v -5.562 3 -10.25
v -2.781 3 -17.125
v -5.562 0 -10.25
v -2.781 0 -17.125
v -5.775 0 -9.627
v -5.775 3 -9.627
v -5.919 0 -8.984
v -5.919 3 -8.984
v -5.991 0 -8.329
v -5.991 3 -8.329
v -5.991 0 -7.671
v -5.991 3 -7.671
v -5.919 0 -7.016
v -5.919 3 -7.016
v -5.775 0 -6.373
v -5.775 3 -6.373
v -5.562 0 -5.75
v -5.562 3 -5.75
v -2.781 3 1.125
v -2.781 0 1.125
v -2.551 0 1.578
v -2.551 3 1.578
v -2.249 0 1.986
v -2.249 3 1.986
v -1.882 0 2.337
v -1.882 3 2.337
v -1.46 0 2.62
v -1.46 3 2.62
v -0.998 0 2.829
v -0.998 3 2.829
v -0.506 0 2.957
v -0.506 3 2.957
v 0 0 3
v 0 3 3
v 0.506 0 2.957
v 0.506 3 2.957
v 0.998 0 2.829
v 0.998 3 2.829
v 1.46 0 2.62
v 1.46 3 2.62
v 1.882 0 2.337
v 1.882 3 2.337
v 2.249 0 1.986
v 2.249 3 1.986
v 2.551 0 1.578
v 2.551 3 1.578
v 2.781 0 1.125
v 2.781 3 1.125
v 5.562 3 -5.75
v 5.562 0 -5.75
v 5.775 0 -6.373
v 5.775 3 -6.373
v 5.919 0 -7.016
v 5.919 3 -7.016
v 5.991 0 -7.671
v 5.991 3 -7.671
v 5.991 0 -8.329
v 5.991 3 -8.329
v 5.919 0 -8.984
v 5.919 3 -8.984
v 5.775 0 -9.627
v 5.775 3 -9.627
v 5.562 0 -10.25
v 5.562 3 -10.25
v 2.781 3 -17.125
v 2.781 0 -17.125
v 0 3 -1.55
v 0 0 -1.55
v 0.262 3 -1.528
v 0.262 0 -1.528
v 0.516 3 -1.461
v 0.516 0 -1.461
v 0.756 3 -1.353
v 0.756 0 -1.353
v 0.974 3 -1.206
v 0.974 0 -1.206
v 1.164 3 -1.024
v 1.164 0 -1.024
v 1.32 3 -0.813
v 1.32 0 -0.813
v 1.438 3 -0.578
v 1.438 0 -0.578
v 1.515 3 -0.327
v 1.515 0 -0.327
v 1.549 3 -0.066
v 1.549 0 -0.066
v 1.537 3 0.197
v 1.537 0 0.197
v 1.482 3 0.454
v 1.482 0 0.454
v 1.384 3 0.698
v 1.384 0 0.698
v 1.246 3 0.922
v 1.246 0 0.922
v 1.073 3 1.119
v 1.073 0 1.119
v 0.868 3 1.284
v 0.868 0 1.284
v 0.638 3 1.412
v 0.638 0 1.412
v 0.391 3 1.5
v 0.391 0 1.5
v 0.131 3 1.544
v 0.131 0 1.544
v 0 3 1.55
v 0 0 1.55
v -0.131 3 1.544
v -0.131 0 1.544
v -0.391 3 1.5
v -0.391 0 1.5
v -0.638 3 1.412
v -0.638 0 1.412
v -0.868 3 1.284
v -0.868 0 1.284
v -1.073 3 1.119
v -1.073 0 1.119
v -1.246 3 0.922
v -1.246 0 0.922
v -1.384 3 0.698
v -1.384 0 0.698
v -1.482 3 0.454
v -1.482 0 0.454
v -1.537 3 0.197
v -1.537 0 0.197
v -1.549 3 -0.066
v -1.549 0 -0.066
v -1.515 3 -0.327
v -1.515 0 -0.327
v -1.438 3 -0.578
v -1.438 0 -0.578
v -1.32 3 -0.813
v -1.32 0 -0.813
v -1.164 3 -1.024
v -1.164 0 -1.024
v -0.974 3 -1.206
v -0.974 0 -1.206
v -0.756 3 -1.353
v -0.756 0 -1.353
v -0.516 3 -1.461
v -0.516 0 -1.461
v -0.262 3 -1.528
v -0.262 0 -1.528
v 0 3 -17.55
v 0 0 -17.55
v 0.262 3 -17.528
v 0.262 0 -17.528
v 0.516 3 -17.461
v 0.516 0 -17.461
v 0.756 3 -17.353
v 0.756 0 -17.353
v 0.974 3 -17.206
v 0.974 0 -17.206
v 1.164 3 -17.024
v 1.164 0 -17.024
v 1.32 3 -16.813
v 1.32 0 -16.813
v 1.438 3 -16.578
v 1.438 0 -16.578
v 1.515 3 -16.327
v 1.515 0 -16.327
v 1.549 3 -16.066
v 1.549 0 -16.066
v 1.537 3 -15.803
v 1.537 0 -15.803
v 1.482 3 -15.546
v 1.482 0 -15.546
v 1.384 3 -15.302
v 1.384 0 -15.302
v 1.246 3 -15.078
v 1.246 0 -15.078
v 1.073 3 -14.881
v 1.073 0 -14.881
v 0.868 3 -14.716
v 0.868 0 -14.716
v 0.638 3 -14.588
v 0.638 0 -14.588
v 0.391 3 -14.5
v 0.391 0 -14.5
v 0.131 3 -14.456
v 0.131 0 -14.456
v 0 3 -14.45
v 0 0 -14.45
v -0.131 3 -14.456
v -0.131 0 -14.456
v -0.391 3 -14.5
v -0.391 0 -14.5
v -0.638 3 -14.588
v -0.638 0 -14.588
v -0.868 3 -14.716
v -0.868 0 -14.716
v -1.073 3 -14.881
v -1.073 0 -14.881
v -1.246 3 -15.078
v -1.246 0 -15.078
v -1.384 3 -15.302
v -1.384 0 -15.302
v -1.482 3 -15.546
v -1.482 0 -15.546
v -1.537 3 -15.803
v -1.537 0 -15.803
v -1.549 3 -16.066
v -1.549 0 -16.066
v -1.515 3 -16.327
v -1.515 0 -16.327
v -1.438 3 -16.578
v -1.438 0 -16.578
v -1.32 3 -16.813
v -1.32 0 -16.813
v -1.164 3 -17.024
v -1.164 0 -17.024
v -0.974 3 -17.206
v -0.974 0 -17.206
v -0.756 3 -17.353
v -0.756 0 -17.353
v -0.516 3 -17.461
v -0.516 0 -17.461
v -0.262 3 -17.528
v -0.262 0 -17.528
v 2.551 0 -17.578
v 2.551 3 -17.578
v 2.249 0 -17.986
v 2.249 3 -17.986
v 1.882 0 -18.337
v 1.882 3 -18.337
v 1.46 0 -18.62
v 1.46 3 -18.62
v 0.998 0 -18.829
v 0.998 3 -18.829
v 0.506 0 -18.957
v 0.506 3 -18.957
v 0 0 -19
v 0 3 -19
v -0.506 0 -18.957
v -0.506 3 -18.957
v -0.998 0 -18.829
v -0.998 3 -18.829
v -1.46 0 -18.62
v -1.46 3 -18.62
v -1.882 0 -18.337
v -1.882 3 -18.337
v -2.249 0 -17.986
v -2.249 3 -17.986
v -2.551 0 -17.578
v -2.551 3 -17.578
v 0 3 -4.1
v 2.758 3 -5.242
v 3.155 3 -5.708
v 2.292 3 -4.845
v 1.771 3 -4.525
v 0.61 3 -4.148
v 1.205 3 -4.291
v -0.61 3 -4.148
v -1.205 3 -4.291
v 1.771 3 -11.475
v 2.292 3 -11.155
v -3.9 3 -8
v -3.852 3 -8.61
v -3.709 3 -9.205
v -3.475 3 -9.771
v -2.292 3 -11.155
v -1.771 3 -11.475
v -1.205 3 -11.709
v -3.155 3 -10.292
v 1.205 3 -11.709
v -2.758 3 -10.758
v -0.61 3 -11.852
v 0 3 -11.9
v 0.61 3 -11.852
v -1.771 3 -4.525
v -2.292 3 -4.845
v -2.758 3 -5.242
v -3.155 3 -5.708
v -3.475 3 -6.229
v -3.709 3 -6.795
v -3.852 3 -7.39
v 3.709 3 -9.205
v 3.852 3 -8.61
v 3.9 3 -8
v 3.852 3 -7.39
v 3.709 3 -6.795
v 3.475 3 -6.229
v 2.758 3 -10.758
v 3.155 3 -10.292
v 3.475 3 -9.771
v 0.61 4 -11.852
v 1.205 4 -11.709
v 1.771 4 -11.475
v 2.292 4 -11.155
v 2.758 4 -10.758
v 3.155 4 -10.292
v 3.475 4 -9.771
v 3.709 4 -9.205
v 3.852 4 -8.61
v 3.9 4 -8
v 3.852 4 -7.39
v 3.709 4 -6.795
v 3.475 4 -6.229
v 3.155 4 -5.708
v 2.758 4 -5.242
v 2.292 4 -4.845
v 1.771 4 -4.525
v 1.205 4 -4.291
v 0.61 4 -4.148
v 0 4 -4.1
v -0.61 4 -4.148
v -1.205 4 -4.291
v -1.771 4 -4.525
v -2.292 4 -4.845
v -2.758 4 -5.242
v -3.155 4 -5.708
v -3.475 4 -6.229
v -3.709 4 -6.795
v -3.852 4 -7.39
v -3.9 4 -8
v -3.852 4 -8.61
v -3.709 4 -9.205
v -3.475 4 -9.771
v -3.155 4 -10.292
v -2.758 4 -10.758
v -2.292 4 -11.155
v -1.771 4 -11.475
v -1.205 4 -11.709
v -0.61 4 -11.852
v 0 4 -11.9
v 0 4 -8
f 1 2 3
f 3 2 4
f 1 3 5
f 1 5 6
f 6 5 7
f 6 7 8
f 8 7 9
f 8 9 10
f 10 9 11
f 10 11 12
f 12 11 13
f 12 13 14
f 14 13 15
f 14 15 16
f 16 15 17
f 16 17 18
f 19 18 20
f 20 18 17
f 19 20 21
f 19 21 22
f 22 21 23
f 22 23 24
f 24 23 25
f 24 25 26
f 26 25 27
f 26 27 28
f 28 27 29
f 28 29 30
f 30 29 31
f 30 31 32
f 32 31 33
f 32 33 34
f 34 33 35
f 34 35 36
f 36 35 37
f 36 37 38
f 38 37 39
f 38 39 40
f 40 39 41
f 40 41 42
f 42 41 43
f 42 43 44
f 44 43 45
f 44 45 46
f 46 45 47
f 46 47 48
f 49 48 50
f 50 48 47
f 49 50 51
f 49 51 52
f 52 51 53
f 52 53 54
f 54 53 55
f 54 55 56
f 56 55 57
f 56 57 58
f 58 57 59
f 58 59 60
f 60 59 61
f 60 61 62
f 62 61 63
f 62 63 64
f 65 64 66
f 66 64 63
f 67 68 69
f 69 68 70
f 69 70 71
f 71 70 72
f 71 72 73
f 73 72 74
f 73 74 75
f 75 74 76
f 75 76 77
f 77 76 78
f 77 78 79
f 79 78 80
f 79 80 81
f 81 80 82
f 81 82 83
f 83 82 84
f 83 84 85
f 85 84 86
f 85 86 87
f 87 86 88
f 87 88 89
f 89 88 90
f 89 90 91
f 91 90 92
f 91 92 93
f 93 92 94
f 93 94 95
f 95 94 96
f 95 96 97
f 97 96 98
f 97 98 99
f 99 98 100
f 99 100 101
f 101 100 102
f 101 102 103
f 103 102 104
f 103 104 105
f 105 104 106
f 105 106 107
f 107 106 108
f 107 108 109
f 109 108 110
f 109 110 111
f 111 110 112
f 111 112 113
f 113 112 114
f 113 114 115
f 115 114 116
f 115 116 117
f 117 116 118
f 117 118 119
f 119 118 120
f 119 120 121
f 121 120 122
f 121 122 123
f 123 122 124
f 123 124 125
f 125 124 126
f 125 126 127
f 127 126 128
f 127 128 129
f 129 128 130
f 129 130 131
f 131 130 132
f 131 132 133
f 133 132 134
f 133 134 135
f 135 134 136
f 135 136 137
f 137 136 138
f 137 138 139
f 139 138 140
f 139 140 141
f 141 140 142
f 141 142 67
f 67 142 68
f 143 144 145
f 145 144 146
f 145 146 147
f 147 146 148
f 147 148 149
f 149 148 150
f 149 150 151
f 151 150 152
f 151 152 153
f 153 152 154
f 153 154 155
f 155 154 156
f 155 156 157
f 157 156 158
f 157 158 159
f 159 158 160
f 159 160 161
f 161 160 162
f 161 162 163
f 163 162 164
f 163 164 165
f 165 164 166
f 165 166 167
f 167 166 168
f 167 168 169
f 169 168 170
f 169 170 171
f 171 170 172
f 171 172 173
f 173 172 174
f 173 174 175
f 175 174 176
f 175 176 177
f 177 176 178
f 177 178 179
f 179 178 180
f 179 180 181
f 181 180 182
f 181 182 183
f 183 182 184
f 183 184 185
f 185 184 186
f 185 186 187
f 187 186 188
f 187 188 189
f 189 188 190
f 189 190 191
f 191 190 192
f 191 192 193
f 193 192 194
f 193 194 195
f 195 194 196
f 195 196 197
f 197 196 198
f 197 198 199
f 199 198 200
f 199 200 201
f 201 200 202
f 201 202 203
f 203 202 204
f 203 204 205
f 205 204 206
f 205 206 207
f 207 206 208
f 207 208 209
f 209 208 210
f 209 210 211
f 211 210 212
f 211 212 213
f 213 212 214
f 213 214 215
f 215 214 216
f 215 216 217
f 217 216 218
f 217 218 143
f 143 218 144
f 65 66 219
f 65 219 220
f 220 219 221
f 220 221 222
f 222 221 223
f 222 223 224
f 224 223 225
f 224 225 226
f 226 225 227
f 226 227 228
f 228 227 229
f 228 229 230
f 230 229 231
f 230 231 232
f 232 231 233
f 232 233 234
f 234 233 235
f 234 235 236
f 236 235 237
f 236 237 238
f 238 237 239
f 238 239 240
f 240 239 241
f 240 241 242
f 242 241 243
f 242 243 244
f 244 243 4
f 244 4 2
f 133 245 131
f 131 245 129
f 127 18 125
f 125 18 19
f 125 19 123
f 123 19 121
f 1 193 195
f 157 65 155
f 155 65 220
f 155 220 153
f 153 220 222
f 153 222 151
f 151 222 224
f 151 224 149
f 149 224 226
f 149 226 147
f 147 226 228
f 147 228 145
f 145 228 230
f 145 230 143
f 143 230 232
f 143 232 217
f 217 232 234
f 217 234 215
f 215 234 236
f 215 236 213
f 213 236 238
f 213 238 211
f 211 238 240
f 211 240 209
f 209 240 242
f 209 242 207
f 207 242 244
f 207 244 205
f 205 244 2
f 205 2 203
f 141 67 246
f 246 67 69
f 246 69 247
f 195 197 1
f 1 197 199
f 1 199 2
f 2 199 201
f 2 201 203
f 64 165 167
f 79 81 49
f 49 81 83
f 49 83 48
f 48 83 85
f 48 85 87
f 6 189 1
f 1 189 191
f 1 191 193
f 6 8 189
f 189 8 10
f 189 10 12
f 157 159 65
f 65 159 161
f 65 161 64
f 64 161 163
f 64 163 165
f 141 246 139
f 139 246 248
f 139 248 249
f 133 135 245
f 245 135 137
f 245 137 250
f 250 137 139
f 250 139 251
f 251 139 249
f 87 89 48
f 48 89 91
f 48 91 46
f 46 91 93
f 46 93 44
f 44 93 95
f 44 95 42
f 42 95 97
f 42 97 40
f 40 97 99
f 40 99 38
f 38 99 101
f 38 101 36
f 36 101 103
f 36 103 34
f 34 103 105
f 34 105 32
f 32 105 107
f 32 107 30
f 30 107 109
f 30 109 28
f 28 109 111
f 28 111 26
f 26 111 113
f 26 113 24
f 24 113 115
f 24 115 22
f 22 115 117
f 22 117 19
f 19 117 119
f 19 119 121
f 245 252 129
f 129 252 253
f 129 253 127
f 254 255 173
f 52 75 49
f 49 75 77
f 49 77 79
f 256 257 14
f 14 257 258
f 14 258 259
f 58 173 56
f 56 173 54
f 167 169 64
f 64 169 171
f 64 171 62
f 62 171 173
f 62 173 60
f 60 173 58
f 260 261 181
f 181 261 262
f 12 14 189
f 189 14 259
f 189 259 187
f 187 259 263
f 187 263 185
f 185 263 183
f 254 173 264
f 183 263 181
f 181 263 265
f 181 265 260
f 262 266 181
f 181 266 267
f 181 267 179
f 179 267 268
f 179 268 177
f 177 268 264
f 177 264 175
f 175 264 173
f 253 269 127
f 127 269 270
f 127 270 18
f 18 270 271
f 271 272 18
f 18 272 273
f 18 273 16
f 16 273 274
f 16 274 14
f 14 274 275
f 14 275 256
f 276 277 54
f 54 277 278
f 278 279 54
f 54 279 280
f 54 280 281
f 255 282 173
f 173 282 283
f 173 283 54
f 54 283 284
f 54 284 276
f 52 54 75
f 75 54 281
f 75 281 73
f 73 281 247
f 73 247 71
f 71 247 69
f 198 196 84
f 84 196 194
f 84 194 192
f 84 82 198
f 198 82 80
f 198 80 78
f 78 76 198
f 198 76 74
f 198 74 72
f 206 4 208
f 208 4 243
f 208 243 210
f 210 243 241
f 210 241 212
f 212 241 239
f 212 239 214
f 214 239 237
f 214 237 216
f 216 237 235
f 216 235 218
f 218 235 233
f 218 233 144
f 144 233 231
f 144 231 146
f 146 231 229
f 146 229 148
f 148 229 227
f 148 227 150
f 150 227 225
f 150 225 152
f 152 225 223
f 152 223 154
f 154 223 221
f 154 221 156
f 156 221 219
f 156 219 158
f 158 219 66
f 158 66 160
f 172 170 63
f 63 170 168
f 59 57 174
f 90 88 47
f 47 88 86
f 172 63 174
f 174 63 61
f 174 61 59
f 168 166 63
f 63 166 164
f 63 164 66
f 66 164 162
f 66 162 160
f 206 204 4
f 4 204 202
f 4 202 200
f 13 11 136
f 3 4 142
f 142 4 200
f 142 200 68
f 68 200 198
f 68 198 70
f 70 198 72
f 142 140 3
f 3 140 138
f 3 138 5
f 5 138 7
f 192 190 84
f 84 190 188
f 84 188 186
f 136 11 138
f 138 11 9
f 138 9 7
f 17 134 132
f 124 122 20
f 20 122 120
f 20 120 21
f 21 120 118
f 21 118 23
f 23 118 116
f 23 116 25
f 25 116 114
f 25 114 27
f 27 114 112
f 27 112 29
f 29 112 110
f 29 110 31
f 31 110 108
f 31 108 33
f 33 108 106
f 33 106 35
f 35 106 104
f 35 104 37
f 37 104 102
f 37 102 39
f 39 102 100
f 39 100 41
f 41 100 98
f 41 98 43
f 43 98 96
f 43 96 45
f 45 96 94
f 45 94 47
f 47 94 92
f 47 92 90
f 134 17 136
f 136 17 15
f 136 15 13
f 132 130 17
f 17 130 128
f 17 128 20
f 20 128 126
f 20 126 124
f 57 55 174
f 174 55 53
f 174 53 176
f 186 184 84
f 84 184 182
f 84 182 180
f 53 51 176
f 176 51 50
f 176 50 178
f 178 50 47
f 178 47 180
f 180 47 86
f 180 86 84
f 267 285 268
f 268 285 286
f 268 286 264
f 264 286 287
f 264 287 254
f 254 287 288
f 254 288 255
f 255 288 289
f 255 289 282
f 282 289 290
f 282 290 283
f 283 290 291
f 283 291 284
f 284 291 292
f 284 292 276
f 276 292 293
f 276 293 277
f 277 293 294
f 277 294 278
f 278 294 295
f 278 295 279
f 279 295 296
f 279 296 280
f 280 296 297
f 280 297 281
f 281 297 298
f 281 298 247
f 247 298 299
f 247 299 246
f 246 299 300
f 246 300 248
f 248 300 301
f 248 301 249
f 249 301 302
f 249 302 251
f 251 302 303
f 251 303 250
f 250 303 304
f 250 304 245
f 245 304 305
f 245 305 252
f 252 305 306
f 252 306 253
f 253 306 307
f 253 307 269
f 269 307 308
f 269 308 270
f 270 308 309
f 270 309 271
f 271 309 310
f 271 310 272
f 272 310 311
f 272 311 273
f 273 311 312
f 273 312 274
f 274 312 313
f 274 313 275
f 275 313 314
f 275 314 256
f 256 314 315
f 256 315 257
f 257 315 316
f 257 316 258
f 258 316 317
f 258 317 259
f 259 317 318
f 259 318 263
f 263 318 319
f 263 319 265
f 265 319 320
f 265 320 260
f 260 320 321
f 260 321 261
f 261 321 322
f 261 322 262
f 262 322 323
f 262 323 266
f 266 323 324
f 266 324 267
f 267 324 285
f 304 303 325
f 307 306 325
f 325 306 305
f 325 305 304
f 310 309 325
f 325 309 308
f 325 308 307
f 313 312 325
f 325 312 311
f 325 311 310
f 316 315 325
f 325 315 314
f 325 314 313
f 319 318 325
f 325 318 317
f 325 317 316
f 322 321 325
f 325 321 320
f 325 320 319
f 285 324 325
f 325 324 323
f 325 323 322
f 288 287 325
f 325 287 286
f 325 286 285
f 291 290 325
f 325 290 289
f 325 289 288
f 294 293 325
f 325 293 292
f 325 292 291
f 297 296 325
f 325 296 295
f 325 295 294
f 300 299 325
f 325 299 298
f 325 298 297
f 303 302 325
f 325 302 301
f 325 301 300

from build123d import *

# Parameters (mm, degrees)
CROQUIS2_R              = 1.55
SALIENTE_EXTRUIR1_DEPTH = 3
CROQUIS3_R              = 3.9
SALIENTE_EXTRUIR2_DEPTH = 1


with BuildPart() as part:
    # Croquis2 → Saliente-Extruir1 (new body)
    with BuildSketch(Plane(origin=(0, 0, 0), x_dir=(1, 0, 0), z_dir=(0, 1, 0))):
        with BuildLine():
            Line((2.781074433, 17.125), (5.562148865, 10.25))
            ThreePointArc((5.562148865, 10.25), (6, 8), (5.562148865, 5.75))
            Line((5.562148865, 5.75), (2.781074433, -1.125))
            ThreePointArc((2.781074433, -1.125), (0, -3), (-2.781074433, -1.125))
            Line((-2.781074433, -1.125), (-5.562148865, 5.75))
            ThreePointArc((-5.562148865, 5.75), (-6, 8), (-5.562148865, 10.25))
            Line((-5.562148865, 10.25), (-2.781074433, 17.125))
            ThreePointArc((-2.781074433, 17.125), (0, 19), (2.781074433, 17.125))
        make_face()
        with Locations((0, 16)):
            Circle(CROQUIS2_R, mode=Mode.SUBTRACT)
        Circle(CROQUIS2_R, mode=Mode.SUBTRACT)
    extrude(amount=SALIENTE_EXTRUIR1_DEPTH)

    # Croquis3 → Saliente-Extruir2 (add)
    with BuildSketch(Plane(origin=(0, 3, 0), x_dir=(1, 0, 0), z_dir=(0, 1, 0))):
        with Locations((0, 8)):
            Circle(CROQUIS3_R)
    extrude(amount=SALIENTE_EXTRUIR2_DEPTH)


solid = part.part
